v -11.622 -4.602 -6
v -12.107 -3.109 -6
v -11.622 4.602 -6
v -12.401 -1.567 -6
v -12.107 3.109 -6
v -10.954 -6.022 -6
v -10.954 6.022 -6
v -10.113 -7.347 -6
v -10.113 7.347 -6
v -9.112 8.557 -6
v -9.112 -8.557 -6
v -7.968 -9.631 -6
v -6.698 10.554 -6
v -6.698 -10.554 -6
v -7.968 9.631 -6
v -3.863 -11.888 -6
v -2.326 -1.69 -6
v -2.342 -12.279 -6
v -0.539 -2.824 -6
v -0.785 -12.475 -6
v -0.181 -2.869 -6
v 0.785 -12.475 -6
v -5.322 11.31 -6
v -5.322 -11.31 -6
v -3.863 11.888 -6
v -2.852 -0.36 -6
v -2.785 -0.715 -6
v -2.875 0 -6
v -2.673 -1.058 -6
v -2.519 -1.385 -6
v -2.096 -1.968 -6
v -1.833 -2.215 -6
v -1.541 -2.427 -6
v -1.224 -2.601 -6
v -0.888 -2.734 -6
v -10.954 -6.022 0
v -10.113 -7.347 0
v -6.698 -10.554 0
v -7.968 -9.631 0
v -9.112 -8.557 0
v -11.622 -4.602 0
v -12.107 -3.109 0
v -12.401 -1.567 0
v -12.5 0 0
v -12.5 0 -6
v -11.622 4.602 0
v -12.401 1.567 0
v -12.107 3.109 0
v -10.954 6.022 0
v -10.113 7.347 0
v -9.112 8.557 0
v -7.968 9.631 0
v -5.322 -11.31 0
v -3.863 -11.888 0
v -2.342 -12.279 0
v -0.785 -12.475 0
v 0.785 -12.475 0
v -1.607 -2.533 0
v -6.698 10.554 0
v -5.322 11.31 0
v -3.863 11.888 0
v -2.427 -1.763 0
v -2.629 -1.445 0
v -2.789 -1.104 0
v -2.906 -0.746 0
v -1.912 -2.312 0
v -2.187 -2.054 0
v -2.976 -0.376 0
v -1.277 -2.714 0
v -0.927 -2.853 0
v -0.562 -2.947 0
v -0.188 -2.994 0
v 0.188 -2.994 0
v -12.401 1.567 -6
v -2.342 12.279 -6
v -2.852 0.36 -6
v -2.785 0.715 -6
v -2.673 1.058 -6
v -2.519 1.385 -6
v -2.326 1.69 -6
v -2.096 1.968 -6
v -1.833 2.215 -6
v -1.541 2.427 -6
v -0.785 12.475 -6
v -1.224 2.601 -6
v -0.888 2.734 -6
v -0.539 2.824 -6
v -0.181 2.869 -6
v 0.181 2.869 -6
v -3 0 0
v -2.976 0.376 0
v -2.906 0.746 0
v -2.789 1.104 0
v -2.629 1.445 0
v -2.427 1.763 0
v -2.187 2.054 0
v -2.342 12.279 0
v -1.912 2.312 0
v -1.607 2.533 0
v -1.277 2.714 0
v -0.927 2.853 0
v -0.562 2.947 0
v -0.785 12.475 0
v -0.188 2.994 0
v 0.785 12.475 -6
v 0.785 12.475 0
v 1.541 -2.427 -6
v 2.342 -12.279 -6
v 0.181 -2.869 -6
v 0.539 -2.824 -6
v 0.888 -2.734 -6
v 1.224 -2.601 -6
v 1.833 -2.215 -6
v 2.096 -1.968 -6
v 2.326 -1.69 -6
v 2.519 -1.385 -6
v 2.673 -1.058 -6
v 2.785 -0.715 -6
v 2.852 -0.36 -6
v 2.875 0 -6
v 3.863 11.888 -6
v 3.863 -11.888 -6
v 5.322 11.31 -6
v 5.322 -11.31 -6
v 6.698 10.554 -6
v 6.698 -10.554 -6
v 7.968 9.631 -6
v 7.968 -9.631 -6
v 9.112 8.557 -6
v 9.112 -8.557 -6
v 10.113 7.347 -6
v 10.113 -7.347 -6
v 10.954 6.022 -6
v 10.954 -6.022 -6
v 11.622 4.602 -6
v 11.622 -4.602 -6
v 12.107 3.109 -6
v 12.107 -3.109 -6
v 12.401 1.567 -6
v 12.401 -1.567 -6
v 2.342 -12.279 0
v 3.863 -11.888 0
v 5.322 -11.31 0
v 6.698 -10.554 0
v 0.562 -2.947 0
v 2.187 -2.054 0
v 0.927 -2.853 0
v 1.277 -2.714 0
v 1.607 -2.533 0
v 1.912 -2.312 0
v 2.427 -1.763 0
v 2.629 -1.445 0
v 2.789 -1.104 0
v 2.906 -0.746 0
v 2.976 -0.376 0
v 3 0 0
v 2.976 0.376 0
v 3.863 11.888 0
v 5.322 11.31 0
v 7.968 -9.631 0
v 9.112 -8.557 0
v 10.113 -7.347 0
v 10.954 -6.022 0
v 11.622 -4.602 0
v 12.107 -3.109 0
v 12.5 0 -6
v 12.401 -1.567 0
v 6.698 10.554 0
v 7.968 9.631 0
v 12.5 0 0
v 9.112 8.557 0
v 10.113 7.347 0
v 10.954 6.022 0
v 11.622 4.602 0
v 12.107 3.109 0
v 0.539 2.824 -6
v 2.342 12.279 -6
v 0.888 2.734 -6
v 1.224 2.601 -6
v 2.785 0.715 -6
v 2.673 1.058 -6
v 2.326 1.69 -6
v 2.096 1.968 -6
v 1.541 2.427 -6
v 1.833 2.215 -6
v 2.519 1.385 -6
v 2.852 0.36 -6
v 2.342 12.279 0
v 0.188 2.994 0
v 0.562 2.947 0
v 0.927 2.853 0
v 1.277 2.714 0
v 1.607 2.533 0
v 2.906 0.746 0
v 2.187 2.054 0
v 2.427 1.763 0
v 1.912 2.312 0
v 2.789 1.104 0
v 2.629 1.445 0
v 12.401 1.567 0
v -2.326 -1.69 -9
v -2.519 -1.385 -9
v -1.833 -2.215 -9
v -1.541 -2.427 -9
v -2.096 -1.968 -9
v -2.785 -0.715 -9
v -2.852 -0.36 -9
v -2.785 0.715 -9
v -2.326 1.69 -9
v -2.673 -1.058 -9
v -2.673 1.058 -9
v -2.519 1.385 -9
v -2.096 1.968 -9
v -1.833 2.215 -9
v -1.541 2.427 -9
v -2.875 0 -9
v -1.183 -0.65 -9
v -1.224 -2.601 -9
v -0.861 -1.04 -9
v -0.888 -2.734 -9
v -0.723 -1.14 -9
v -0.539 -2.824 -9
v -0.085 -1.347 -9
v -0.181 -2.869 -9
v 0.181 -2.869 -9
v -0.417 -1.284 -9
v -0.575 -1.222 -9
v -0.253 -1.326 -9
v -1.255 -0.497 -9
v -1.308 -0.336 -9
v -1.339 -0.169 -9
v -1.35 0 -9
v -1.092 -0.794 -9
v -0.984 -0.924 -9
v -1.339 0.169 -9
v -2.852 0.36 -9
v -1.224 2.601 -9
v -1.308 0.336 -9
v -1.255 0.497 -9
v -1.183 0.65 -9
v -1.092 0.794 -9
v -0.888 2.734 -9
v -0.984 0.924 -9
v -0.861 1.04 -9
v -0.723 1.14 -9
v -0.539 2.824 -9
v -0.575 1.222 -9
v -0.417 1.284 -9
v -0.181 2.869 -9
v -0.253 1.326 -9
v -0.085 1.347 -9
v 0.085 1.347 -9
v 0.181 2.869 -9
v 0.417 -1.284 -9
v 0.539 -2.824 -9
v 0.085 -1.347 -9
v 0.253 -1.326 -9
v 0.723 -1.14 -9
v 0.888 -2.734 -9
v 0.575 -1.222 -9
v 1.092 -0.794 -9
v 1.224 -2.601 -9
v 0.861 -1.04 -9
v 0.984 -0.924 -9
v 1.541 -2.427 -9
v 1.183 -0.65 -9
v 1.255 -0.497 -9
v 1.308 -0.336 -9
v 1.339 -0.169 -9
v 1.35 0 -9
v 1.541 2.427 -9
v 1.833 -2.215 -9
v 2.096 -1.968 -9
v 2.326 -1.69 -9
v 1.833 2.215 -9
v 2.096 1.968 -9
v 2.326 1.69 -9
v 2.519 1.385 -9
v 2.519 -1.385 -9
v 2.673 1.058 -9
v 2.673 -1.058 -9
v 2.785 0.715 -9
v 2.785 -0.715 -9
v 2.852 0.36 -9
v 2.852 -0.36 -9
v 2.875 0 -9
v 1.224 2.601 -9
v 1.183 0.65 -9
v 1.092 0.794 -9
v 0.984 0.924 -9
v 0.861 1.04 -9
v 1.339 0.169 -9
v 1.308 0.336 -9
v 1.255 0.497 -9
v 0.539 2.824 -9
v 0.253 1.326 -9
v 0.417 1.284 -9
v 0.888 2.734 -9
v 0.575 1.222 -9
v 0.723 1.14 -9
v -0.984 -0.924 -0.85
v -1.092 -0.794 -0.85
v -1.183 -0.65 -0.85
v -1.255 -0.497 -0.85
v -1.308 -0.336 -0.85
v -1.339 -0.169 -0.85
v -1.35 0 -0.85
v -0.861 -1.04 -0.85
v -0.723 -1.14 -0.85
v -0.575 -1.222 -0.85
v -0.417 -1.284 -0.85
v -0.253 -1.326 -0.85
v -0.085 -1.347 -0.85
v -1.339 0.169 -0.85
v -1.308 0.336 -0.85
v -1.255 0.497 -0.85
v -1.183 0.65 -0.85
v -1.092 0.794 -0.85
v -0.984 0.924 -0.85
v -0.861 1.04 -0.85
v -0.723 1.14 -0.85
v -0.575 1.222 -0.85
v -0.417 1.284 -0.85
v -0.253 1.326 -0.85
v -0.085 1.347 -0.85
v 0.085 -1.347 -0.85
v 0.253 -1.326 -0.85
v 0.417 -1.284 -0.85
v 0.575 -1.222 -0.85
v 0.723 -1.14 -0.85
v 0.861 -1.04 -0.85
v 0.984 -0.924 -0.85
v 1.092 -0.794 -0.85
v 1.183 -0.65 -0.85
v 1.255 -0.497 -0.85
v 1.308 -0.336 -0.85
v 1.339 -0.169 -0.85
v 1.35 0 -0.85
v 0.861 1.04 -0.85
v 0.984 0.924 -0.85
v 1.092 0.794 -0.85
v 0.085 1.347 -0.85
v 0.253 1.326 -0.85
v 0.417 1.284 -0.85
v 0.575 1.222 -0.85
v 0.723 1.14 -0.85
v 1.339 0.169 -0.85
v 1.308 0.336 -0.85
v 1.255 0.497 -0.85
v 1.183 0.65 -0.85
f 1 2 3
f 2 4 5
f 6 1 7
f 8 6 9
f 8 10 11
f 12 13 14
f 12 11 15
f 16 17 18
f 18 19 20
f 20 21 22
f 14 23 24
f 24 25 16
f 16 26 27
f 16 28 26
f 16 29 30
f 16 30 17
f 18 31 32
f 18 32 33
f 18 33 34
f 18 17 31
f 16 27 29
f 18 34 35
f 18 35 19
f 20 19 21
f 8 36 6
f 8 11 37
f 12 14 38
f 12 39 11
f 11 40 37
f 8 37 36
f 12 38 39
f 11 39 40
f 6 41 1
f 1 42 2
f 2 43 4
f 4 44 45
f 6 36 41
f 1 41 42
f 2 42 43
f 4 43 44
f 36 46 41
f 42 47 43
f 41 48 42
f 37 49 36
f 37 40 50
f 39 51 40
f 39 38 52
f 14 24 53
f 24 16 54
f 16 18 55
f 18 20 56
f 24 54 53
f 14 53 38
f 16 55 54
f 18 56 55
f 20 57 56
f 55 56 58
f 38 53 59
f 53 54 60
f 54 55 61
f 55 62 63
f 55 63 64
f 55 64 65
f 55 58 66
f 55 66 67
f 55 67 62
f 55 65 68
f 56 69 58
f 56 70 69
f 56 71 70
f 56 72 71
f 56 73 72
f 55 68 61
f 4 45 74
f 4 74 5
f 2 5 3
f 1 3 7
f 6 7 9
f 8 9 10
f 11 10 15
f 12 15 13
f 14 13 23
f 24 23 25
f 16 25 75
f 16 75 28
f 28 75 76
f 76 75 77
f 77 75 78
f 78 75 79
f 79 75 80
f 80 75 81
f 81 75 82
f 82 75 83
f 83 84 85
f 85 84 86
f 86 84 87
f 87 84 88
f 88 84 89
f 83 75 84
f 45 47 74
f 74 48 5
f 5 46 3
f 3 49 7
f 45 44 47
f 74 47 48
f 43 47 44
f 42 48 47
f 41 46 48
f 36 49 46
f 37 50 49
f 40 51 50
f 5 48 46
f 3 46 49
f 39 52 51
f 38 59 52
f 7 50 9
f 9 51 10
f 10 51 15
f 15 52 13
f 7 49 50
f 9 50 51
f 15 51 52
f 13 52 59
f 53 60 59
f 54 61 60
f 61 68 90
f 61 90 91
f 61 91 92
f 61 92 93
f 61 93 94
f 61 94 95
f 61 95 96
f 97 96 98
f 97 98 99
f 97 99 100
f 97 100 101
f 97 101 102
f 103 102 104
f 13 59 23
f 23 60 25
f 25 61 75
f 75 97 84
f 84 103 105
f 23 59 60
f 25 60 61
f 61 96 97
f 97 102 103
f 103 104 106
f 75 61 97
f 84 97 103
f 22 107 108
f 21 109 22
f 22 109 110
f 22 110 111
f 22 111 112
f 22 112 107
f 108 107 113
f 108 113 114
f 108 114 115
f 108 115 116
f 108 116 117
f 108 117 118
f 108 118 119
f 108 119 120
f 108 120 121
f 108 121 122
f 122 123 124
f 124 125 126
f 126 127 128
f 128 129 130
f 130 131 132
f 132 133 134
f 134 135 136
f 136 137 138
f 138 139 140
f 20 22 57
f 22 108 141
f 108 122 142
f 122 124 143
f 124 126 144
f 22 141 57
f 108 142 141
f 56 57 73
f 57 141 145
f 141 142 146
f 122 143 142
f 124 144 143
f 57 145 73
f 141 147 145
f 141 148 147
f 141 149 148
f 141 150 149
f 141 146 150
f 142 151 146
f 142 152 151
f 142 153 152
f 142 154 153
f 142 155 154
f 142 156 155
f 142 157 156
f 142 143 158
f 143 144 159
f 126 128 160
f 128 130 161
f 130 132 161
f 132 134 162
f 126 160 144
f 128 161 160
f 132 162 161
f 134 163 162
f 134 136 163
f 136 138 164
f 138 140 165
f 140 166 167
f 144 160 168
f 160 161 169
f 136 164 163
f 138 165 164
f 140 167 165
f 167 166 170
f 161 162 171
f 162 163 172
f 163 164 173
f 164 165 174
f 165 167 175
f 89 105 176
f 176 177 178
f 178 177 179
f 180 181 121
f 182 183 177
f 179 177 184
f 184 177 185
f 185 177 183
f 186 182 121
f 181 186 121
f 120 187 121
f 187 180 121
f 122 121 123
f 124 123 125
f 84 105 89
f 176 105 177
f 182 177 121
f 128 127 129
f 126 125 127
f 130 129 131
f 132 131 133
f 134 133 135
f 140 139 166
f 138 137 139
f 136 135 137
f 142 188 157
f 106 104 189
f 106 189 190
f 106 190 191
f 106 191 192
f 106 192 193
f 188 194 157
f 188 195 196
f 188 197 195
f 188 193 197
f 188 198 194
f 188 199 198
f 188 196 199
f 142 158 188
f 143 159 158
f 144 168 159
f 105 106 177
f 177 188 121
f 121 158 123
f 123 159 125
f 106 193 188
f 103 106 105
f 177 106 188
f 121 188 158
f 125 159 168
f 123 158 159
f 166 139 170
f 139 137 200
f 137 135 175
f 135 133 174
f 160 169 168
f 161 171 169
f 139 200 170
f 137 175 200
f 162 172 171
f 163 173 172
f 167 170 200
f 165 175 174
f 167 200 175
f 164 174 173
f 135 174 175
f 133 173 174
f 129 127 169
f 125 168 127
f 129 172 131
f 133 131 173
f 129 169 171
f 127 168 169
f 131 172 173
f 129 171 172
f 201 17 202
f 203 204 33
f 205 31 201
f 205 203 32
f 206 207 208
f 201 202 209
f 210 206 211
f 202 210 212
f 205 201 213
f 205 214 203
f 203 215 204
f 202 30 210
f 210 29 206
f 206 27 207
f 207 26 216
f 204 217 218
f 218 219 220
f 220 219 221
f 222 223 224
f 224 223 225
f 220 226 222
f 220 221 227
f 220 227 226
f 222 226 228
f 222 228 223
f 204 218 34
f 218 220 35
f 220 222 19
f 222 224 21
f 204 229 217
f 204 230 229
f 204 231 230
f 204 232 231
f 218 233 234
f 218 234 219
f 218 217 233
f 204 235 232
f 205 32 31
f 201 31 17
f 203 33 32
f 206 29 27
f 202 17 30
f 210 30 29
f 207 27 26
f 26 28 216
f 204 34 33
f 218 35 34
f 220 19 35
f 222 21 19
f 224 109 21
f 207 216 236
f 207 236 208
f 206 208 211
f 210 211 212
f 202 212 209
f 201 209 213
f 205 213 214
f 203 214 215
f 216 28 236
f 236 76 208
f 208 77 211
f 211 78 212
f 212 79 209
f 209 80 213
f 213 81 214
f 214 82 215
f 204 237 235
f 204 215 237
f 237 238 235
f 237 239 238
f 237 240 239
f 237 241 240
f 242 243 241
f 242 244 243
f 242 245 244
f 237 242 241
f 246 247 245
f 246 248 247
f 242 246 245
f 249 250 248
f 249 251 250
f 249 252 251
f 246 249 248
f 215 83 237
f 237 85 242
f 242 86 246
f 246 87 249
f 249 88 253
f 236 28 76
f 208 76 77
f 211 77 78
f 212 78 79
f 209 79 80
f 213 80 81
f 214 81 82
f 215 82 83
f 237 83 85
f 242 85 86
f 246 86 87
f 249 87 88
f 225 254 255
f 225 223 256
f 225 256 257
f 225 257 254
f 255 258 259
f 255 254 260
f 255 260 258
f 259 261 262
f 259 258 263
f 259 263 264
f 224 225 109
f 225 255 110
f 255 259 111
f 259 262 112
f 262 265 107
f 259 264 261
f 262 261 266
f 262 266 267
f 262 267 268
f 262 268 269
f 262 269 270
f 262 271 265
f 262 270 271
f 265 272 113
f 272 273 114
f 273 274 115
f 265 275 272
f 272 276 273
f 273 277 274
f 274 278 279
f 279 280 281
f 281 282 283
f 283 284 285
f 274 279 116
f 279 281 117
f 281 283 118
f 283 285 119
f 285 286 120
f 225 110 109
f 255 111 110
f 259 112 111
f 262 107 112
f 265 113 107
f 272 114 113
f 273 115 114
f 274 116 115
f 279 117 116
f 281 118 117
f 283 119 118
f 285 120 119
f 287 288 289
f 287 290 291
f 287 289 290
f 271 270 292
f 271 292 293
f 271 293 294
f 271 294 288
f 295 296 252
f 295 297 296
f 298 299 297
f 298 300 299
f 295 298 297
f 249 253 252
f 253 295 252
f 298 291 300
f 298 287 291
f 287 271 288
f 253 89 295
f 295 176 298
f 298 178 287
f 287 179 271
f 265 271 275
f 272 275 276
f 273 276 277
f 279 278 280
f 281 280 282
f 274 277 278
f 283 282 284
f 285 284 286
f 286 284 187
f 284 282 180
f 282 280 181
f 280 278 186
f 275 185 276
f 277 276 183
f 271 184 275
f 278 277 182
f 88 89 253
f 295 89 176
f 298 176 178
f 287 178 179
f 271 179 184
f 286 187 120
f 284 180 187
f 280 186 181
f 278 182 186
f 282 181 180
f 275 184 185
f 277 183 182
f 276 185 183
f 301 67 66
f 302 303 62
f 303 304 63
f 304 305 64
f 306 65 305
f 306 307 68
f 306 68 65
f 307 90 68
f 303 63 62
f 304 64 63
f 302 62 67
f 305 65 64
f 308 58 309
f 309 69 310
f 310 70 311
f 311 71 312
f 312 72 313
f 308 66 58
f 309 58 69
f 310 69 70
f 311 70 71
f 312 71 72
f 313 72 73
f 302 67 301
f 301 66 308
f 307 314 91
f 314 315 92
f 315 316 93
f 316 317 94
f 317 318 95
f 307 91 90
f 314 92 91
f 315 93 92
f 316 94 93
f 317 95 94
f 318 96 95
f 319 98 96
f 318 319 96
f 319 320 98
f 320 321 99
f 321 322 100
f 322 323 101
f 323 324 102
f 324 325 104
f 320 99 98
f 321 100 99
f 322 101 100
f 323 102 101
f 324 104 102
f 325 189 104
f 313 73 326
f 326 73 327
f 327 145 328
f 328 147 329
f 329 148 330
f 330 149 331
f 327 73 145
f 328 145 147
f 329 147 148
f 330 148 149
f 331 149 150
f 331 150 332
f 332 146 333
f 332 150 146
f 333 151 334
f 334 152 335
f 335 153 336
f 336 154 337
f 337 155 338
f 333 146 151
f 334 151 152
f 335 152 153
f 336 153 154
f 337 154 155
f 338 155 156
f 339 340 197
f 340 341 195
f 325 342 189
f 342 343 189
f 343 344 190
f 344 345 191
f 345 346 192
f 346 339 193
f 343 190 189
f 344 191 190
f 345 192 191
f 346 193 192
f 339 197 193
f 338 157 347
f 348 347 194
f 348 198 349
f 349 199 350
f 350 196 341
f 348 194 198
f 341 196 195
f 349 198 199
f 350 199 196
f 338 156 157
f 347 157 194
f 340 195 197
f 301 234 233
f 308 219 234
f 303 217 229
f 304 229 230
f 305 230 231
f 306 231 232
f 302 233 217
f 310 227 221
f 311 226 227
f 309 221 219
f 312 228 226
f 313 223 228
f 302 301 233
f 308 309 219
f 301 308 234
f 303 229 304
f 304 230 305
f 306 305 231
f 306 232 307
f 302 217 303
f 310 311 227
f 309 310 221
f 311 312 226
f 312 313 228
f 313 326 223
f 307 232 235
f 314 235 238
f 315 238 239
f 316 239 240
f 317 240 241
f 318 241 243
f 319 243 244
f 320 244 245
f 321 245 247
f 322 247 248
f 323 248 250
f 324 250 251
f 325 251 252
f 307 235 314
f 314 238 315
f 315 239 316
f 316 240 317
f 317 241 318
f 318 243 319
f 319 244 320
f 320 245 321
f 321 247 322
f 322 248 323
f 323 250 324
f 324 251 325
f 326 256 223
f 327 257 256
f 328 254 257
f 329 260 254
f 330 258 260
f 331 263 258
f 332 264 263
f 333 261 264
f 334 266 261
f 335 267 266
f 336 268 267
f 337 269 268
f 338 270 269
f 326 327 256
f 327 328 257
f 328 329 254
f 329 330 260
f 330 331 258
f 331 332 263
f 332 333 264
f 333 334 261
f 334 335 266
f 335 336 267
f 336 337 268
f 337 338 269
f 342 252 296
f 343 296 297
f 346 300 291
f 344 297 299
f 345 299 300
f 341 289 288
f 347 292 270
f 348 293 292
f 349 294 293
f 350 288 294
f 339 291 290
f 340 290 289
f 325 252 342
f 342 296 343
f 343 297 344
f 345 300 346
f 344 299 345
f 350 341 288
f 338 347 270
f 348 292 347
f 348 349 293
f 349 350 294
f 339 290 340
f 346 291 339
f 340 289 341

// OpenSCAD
$fn = 50;

difference() {
	union() {
		translate(v = [0, 0, -6.0]) {
			cylinder(h = 6, r = 12.5);
		}
		#translate(v = [0, 0, -9.0]) {
			cylinder(h = 9, r = 2.875);
		}
	}
	union() {
		translate(v = [0, 0, 0]) {
			rotate(a = [0, 0, 0]) {
				difference() {
					union() {
						translate(v = [0, 0, -9.0]) {
							cylinder(h = 9, r = 1.0);
						}
						translate(v = [0, 0, -0.85]) {
							cylinder(h = 0.85, r1 = 1.35, r2 = 3.0);
						}
						translate(v = [0, 0, -9.0]) {
							cylinder(h = 9, r = 1.35);
						}
						translate(v = [0, 0, -9.0]) {
							cylinder(h = 9, r = 1.0);
						}
					}
					union();
				}
			}
		}
	}
}
